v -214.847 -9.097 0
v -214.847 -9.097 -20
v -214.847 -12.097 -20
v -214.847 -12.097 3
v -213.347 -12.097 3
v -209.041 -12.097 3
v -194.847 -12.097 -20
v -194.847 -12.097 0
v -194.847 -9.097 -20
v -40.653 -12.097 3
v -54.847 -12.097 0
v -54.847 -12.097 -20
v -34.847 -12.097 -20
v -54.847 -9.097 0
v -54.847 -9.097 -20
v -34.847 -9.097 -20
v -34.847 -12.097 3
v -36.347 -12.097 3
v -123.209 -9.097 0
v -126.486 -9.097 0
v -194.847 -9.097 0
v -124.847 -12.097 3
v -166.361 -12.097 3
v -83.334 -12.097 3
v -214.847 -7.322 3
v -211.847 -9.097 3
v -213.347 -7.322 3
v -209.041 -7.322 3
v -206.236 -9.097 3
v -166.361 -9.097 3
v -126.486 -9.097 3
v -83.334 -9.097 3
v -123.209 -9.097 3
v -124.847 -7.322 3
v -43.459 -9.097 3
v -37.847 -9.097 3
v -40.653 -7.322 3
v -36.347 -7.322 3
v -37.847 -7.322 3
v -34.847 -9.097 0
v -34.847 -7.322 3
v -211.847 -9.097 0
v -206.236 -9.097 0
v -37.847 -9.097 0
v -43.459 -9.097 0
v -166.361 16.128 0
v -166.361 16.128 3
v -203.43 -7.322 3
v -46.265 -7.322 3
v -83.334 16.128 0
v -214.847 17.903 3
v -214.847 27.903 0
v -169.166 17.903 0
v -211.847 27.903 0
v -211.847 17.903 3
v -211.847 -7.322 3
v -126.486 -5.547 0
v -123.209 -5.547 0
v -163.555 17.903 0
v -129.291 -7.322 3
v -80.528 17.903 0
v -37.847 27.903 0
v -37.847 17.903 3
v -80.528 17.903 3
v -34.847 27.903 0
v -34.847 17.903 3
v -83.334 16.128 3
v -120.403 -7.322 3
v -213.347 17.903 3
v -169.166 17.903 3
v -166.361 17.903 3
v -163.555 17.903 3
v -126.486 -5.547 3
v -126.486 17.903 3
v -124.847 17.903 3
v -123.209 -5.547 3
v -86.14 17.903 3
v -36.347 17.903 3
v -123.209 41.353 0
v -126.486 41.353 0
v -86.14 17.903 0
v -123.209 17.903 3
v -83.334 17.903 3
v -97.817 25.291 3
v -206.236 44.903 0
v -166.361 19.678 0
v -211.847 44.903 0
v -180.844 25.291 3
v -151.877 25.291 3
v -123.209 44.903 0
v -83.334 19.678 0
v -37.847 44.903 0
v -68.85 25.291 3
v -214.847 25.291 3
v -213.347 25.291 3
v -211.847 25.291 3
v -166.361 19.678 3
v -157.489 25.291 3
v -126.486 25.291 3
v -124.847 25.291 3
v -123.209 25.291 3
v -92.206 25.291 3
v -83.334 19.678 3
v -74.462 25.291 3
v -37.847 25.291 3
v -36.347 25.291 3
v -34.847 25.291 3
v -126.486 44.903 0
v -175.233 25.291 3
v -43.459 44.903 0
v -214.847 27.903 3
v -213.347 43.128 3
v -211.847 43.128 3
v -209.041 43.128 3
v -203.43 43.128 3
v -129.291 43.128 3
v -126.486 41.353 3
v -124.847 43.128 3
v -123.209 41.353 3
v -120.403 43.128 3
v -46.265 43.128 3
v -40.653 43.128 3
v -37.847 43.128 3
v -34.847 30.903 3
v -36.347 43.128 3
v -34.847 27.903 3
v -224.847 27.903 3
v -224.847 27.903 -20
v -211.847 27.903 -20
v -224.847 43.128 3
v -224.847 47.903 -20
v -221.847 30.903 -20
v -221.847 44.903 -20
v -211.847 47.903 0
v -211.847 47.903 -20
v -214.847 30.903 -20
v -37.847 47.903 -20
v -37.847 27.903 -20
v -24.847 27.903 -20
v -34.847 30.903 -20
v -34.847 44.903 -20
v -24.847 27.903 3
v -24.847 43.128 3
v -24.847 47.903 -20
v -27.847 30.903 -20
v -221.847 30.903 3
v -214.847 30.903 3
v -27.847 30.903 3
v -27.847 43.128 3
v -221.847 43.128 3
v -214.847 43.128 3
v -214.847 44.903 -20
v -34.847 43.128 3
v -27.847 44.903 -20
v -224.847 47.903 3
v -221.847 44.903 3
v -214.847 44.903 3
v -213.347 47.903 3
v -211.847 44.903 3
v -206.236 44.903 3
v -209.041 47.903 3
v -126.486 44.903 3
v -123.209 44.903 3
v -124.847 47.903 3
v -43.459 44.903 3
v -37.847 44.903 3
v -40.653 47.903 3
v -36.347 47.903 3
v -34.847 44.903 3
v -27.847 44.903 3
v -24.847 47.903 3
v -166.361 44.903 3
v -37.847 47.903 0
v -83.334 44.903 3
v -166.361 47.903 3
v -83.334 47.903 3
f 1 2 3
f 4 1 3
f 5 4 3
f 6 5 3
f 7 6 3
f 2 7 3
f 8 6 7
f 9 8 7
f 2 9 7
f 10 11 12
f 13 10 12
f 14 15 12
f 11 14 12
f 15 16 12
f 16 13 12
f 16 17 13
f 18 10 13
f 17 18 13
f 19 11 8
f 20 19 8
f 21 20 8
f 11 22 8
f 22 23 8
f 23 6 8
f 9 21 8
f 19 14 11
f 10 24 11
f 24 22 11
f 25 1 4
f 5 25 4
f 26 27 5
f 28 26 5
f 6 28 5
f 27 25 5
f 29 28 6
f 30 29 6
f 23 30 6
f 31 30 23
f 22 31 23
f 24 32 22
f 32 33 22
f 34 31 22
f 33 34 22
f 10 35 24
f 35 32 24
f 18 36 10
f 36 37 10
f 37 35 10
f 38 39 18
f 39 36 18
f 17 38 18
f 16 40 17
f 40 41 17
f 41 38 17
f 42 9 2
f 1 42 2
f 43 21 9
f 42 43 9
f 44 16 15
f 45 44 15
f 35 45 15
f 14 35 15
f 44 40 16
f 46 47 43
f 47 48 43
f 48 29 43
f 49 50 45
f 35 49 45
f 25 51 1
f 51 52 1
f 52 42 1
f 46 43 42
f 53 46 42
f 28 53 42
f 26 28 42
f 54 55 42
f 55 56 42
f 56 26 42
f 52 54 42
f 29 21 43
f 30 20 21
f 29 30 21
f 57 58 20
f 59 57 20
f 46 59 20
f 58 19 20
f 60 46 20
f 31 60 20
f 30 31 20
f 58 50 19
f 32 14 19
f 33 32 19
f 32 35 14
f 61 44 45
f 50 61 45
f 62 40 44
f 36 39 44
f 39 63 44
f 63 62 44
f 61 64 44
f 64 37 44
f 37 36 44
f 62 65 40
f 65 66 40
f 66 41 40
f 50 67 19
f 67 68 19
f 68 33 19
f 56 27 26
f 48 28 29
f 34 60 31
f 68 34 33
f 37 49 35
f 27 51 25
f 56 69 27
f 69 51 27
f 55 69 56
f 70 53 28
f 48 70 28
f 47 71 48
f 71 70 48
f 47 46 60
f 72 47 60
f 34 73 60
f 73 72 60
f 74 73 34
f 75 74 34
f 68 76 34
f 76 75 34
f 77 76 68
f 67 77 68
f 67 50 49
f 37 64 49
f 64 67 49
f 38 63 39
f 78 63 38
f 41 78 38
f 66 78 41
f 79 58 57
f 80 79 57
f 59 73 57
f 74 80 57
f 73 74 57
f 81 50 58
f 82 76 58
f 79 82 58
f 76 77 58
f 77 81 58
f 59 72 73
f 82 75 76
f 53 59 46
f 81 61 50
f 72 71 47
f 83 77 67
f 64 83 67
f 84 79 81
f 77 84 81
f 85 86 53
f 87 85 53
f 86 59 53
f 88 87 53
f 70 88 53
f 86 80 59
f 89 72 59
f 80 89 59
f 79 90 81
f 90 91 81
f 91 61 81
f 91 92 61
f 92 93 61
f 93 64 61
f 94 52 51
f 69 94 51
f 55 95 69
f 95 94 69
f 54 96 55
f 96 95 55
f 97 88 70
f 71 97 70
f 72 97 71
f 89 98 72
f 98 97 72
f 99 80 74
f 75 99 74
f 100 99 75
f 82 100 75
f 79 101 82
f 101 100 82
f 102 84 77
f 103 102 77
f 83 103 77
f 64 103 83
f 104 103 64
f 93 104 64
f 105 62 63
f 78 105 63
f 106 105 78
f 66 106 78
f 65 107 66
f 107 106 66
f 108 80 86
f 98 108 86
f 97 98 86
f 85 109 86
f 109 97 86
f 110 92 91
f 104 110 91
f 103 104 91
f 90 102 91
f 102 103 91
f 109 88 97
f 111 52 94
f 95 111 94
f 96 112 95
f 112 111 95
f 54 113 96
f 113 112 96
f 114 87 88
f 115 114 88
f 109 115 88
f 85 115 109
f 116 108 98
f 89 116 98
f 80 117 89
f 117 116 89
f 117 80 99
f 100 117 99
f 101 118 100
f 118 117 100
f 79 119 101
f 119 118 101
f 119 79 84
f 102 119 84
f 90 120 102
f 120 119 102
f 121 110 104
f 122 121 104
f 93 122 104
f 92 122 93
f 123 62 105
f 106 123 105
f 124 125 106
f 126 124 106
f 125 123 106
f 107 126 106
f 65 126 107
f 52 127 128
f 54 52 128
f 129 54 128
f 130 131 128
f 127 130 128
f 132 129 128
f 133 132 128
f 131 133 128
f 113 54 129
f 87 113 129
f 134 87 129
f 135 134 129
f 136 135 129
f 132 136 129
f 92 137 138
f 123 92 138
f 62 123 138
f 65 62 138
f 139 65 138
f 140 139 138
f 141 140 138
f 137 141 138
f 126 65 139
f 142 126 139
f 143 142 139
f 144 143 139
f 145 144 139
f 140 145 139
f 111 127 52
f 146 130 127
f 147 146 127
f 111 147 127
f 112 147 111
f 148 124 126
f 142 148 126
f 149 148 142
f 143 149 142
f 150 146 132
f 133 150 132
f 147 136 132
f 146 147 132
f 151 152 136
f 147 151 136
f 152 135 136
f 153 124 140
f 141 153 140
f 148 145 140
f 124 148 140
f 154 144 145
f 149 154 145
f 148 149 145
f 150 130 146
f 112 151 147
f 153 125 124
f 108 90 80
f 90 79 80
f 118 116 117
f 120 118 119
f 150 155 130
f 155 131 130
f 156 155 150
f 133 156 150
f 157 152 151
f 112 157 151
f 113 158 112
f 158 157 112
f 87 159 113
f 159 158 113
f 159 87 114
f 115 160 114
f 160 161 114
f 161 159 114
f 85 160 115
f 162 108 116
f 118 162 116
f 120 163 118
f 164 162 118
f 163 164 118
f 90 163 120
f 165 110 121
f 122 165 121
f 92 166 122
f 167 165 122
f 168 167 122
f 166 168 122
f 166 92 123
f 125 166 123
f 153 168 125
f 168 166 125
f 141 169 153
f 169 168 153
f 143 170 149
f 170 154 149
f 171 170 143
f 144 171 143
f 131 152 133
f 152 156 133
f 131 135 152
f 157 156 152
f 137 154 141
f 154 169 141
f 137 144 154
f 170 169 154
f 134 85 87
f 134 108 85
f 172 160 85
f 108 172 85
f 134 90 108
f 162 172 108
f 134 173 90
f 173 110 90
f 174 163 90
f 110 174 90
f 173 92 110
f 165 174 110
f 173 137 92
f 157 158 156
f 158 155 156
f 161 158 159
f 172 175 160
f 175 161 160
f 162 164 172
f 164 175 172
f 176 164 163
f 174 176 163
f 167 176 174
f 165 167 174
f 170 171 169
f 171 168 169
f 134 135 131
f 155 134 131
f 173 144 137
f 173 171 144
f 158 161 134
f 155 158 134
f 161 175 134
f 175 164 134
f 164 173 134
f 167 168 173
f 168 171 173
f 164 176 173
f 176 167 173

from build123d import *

# Parameters (mm, degrees)
CROQUIS1_W              = 180
CROQUIS1_H              = 60
SALIENTE_EXTRUIR1_DEPTH = 3
CROQUIS2_W              = 20
CROQUIS2_H              = 3
CROQUIS2_W_2            = 13
CROQUIS2_H_2            = 20
CROQUIS2_W_3            = 7
CROQUIS2_H_3            = 14
SALIENTE_EXTRUIR2_DEPTH = 23


with BuildPart() as part:
    # Croquis1 → Saliente-Extruir1 (new body)
    with BuildSketch(Plane.XY):
        with Locations((-124.847250917, 17.903225806)):
            Rectangle(CROQUIS1_W, CROQUIS1_H)
        Polygon((-43.458800443, 44.903225806), (-123.208800443, 44.903225806), (-83.333800443, 19.678168249), align=None, mode=Mode.SUBTRACT)
        Polygon((-123.208800443, 41.353340922), (-123.208800443, -5.546889309), (-86.139575206, 17.903225806), align=None, mode=Mode.SUBTRACT)
        Polygon((-166.360701391, 19.678168249), (-126.485701391, 44.903225806), (-206.235701391, 44.903225806), align=None, mode=Mode.SUBTRACT)
        Polygon((-211.847250917, 44.903225806), (-169.166476154, 17.903225806), (-211.847250917, -9.096774194), align=None, mode=Mode.SUBTRACT)
        Polygon((-206.235701391, -9.096774194), (-166.360701391, 16.128283364), (-126.485701391, -9.096774194), align=None, mode=Mode.SUBTRACT)
        Polygon((-126.485701391, -5.546889309), (-163.554926629, 17.903225806), (-126.485701391, 41.353340922), align=None, mode=Mode.SUBTRACT)
        Polygon((-43.458800443, -9.096774194), (-83.333800443, 16.128283364), (-123.208800443, -9.096774194), align=None, mode=Mode.SUBTRACT)
        Polygon((-37.847250917, 44.903225806), (-80.52802568, 17.903225806), (-37.847250917, -9.096774194), align=None, mode=Mode.SUBTRACT)
    extrude(amount=SALIENTE_EXTRUIR1_DEPTH)

    # Croquis2 → Saliente-Extruir2 (add)
    # profile 1 of 4: a face of its own
    with BuildSketch(Plane.XY.offset(3)):
        with Locations((-204.847250917, -10.596774194)):
            Rectangle(CROQUIS2_W, CROQUIS2_H)
    # profile 2 of 4: a face of its own
    with BuildSketch(Plane.XY.offset(3)):
        with Locations((-218.347250917, 37.903225806)):
            Rectangle(CROQUIS2_W_2, CROQUIS2_H_2)
        with Locations((-218.347250917, 37.903225806)):
            Rectangle(CROQUIS2_W_3, CROQUIS2_H_3, mode=Mode.SUBTRACT)
    # profile 3 of 4: a face of its own
    with BuildSketch(Plane.XY.offset(3)):
        with Locations((-31.347250917, 37.903225806)):
            Rectangle(CROQUIS2_W_2, CROQUIS2_H_2)
        with Locations((-31.347250917, 37.903225806)):
            Rectangle(CROQUIS2_W_3, CROQUIS2_H_3, mode=Mode.SUBTRACT)
    # profile 4 of 4: a face of its own
    with BuildSketch(Plane.XY.offset(3)):
        with Locations((-44.847250917, -10.596774194)):
            Rectangle(CROQUIS2_W, CROQUIS2_H)
    extrude(amount=-SALIENTE_EXTRUIR2_DEPTH)


solid = part.part
